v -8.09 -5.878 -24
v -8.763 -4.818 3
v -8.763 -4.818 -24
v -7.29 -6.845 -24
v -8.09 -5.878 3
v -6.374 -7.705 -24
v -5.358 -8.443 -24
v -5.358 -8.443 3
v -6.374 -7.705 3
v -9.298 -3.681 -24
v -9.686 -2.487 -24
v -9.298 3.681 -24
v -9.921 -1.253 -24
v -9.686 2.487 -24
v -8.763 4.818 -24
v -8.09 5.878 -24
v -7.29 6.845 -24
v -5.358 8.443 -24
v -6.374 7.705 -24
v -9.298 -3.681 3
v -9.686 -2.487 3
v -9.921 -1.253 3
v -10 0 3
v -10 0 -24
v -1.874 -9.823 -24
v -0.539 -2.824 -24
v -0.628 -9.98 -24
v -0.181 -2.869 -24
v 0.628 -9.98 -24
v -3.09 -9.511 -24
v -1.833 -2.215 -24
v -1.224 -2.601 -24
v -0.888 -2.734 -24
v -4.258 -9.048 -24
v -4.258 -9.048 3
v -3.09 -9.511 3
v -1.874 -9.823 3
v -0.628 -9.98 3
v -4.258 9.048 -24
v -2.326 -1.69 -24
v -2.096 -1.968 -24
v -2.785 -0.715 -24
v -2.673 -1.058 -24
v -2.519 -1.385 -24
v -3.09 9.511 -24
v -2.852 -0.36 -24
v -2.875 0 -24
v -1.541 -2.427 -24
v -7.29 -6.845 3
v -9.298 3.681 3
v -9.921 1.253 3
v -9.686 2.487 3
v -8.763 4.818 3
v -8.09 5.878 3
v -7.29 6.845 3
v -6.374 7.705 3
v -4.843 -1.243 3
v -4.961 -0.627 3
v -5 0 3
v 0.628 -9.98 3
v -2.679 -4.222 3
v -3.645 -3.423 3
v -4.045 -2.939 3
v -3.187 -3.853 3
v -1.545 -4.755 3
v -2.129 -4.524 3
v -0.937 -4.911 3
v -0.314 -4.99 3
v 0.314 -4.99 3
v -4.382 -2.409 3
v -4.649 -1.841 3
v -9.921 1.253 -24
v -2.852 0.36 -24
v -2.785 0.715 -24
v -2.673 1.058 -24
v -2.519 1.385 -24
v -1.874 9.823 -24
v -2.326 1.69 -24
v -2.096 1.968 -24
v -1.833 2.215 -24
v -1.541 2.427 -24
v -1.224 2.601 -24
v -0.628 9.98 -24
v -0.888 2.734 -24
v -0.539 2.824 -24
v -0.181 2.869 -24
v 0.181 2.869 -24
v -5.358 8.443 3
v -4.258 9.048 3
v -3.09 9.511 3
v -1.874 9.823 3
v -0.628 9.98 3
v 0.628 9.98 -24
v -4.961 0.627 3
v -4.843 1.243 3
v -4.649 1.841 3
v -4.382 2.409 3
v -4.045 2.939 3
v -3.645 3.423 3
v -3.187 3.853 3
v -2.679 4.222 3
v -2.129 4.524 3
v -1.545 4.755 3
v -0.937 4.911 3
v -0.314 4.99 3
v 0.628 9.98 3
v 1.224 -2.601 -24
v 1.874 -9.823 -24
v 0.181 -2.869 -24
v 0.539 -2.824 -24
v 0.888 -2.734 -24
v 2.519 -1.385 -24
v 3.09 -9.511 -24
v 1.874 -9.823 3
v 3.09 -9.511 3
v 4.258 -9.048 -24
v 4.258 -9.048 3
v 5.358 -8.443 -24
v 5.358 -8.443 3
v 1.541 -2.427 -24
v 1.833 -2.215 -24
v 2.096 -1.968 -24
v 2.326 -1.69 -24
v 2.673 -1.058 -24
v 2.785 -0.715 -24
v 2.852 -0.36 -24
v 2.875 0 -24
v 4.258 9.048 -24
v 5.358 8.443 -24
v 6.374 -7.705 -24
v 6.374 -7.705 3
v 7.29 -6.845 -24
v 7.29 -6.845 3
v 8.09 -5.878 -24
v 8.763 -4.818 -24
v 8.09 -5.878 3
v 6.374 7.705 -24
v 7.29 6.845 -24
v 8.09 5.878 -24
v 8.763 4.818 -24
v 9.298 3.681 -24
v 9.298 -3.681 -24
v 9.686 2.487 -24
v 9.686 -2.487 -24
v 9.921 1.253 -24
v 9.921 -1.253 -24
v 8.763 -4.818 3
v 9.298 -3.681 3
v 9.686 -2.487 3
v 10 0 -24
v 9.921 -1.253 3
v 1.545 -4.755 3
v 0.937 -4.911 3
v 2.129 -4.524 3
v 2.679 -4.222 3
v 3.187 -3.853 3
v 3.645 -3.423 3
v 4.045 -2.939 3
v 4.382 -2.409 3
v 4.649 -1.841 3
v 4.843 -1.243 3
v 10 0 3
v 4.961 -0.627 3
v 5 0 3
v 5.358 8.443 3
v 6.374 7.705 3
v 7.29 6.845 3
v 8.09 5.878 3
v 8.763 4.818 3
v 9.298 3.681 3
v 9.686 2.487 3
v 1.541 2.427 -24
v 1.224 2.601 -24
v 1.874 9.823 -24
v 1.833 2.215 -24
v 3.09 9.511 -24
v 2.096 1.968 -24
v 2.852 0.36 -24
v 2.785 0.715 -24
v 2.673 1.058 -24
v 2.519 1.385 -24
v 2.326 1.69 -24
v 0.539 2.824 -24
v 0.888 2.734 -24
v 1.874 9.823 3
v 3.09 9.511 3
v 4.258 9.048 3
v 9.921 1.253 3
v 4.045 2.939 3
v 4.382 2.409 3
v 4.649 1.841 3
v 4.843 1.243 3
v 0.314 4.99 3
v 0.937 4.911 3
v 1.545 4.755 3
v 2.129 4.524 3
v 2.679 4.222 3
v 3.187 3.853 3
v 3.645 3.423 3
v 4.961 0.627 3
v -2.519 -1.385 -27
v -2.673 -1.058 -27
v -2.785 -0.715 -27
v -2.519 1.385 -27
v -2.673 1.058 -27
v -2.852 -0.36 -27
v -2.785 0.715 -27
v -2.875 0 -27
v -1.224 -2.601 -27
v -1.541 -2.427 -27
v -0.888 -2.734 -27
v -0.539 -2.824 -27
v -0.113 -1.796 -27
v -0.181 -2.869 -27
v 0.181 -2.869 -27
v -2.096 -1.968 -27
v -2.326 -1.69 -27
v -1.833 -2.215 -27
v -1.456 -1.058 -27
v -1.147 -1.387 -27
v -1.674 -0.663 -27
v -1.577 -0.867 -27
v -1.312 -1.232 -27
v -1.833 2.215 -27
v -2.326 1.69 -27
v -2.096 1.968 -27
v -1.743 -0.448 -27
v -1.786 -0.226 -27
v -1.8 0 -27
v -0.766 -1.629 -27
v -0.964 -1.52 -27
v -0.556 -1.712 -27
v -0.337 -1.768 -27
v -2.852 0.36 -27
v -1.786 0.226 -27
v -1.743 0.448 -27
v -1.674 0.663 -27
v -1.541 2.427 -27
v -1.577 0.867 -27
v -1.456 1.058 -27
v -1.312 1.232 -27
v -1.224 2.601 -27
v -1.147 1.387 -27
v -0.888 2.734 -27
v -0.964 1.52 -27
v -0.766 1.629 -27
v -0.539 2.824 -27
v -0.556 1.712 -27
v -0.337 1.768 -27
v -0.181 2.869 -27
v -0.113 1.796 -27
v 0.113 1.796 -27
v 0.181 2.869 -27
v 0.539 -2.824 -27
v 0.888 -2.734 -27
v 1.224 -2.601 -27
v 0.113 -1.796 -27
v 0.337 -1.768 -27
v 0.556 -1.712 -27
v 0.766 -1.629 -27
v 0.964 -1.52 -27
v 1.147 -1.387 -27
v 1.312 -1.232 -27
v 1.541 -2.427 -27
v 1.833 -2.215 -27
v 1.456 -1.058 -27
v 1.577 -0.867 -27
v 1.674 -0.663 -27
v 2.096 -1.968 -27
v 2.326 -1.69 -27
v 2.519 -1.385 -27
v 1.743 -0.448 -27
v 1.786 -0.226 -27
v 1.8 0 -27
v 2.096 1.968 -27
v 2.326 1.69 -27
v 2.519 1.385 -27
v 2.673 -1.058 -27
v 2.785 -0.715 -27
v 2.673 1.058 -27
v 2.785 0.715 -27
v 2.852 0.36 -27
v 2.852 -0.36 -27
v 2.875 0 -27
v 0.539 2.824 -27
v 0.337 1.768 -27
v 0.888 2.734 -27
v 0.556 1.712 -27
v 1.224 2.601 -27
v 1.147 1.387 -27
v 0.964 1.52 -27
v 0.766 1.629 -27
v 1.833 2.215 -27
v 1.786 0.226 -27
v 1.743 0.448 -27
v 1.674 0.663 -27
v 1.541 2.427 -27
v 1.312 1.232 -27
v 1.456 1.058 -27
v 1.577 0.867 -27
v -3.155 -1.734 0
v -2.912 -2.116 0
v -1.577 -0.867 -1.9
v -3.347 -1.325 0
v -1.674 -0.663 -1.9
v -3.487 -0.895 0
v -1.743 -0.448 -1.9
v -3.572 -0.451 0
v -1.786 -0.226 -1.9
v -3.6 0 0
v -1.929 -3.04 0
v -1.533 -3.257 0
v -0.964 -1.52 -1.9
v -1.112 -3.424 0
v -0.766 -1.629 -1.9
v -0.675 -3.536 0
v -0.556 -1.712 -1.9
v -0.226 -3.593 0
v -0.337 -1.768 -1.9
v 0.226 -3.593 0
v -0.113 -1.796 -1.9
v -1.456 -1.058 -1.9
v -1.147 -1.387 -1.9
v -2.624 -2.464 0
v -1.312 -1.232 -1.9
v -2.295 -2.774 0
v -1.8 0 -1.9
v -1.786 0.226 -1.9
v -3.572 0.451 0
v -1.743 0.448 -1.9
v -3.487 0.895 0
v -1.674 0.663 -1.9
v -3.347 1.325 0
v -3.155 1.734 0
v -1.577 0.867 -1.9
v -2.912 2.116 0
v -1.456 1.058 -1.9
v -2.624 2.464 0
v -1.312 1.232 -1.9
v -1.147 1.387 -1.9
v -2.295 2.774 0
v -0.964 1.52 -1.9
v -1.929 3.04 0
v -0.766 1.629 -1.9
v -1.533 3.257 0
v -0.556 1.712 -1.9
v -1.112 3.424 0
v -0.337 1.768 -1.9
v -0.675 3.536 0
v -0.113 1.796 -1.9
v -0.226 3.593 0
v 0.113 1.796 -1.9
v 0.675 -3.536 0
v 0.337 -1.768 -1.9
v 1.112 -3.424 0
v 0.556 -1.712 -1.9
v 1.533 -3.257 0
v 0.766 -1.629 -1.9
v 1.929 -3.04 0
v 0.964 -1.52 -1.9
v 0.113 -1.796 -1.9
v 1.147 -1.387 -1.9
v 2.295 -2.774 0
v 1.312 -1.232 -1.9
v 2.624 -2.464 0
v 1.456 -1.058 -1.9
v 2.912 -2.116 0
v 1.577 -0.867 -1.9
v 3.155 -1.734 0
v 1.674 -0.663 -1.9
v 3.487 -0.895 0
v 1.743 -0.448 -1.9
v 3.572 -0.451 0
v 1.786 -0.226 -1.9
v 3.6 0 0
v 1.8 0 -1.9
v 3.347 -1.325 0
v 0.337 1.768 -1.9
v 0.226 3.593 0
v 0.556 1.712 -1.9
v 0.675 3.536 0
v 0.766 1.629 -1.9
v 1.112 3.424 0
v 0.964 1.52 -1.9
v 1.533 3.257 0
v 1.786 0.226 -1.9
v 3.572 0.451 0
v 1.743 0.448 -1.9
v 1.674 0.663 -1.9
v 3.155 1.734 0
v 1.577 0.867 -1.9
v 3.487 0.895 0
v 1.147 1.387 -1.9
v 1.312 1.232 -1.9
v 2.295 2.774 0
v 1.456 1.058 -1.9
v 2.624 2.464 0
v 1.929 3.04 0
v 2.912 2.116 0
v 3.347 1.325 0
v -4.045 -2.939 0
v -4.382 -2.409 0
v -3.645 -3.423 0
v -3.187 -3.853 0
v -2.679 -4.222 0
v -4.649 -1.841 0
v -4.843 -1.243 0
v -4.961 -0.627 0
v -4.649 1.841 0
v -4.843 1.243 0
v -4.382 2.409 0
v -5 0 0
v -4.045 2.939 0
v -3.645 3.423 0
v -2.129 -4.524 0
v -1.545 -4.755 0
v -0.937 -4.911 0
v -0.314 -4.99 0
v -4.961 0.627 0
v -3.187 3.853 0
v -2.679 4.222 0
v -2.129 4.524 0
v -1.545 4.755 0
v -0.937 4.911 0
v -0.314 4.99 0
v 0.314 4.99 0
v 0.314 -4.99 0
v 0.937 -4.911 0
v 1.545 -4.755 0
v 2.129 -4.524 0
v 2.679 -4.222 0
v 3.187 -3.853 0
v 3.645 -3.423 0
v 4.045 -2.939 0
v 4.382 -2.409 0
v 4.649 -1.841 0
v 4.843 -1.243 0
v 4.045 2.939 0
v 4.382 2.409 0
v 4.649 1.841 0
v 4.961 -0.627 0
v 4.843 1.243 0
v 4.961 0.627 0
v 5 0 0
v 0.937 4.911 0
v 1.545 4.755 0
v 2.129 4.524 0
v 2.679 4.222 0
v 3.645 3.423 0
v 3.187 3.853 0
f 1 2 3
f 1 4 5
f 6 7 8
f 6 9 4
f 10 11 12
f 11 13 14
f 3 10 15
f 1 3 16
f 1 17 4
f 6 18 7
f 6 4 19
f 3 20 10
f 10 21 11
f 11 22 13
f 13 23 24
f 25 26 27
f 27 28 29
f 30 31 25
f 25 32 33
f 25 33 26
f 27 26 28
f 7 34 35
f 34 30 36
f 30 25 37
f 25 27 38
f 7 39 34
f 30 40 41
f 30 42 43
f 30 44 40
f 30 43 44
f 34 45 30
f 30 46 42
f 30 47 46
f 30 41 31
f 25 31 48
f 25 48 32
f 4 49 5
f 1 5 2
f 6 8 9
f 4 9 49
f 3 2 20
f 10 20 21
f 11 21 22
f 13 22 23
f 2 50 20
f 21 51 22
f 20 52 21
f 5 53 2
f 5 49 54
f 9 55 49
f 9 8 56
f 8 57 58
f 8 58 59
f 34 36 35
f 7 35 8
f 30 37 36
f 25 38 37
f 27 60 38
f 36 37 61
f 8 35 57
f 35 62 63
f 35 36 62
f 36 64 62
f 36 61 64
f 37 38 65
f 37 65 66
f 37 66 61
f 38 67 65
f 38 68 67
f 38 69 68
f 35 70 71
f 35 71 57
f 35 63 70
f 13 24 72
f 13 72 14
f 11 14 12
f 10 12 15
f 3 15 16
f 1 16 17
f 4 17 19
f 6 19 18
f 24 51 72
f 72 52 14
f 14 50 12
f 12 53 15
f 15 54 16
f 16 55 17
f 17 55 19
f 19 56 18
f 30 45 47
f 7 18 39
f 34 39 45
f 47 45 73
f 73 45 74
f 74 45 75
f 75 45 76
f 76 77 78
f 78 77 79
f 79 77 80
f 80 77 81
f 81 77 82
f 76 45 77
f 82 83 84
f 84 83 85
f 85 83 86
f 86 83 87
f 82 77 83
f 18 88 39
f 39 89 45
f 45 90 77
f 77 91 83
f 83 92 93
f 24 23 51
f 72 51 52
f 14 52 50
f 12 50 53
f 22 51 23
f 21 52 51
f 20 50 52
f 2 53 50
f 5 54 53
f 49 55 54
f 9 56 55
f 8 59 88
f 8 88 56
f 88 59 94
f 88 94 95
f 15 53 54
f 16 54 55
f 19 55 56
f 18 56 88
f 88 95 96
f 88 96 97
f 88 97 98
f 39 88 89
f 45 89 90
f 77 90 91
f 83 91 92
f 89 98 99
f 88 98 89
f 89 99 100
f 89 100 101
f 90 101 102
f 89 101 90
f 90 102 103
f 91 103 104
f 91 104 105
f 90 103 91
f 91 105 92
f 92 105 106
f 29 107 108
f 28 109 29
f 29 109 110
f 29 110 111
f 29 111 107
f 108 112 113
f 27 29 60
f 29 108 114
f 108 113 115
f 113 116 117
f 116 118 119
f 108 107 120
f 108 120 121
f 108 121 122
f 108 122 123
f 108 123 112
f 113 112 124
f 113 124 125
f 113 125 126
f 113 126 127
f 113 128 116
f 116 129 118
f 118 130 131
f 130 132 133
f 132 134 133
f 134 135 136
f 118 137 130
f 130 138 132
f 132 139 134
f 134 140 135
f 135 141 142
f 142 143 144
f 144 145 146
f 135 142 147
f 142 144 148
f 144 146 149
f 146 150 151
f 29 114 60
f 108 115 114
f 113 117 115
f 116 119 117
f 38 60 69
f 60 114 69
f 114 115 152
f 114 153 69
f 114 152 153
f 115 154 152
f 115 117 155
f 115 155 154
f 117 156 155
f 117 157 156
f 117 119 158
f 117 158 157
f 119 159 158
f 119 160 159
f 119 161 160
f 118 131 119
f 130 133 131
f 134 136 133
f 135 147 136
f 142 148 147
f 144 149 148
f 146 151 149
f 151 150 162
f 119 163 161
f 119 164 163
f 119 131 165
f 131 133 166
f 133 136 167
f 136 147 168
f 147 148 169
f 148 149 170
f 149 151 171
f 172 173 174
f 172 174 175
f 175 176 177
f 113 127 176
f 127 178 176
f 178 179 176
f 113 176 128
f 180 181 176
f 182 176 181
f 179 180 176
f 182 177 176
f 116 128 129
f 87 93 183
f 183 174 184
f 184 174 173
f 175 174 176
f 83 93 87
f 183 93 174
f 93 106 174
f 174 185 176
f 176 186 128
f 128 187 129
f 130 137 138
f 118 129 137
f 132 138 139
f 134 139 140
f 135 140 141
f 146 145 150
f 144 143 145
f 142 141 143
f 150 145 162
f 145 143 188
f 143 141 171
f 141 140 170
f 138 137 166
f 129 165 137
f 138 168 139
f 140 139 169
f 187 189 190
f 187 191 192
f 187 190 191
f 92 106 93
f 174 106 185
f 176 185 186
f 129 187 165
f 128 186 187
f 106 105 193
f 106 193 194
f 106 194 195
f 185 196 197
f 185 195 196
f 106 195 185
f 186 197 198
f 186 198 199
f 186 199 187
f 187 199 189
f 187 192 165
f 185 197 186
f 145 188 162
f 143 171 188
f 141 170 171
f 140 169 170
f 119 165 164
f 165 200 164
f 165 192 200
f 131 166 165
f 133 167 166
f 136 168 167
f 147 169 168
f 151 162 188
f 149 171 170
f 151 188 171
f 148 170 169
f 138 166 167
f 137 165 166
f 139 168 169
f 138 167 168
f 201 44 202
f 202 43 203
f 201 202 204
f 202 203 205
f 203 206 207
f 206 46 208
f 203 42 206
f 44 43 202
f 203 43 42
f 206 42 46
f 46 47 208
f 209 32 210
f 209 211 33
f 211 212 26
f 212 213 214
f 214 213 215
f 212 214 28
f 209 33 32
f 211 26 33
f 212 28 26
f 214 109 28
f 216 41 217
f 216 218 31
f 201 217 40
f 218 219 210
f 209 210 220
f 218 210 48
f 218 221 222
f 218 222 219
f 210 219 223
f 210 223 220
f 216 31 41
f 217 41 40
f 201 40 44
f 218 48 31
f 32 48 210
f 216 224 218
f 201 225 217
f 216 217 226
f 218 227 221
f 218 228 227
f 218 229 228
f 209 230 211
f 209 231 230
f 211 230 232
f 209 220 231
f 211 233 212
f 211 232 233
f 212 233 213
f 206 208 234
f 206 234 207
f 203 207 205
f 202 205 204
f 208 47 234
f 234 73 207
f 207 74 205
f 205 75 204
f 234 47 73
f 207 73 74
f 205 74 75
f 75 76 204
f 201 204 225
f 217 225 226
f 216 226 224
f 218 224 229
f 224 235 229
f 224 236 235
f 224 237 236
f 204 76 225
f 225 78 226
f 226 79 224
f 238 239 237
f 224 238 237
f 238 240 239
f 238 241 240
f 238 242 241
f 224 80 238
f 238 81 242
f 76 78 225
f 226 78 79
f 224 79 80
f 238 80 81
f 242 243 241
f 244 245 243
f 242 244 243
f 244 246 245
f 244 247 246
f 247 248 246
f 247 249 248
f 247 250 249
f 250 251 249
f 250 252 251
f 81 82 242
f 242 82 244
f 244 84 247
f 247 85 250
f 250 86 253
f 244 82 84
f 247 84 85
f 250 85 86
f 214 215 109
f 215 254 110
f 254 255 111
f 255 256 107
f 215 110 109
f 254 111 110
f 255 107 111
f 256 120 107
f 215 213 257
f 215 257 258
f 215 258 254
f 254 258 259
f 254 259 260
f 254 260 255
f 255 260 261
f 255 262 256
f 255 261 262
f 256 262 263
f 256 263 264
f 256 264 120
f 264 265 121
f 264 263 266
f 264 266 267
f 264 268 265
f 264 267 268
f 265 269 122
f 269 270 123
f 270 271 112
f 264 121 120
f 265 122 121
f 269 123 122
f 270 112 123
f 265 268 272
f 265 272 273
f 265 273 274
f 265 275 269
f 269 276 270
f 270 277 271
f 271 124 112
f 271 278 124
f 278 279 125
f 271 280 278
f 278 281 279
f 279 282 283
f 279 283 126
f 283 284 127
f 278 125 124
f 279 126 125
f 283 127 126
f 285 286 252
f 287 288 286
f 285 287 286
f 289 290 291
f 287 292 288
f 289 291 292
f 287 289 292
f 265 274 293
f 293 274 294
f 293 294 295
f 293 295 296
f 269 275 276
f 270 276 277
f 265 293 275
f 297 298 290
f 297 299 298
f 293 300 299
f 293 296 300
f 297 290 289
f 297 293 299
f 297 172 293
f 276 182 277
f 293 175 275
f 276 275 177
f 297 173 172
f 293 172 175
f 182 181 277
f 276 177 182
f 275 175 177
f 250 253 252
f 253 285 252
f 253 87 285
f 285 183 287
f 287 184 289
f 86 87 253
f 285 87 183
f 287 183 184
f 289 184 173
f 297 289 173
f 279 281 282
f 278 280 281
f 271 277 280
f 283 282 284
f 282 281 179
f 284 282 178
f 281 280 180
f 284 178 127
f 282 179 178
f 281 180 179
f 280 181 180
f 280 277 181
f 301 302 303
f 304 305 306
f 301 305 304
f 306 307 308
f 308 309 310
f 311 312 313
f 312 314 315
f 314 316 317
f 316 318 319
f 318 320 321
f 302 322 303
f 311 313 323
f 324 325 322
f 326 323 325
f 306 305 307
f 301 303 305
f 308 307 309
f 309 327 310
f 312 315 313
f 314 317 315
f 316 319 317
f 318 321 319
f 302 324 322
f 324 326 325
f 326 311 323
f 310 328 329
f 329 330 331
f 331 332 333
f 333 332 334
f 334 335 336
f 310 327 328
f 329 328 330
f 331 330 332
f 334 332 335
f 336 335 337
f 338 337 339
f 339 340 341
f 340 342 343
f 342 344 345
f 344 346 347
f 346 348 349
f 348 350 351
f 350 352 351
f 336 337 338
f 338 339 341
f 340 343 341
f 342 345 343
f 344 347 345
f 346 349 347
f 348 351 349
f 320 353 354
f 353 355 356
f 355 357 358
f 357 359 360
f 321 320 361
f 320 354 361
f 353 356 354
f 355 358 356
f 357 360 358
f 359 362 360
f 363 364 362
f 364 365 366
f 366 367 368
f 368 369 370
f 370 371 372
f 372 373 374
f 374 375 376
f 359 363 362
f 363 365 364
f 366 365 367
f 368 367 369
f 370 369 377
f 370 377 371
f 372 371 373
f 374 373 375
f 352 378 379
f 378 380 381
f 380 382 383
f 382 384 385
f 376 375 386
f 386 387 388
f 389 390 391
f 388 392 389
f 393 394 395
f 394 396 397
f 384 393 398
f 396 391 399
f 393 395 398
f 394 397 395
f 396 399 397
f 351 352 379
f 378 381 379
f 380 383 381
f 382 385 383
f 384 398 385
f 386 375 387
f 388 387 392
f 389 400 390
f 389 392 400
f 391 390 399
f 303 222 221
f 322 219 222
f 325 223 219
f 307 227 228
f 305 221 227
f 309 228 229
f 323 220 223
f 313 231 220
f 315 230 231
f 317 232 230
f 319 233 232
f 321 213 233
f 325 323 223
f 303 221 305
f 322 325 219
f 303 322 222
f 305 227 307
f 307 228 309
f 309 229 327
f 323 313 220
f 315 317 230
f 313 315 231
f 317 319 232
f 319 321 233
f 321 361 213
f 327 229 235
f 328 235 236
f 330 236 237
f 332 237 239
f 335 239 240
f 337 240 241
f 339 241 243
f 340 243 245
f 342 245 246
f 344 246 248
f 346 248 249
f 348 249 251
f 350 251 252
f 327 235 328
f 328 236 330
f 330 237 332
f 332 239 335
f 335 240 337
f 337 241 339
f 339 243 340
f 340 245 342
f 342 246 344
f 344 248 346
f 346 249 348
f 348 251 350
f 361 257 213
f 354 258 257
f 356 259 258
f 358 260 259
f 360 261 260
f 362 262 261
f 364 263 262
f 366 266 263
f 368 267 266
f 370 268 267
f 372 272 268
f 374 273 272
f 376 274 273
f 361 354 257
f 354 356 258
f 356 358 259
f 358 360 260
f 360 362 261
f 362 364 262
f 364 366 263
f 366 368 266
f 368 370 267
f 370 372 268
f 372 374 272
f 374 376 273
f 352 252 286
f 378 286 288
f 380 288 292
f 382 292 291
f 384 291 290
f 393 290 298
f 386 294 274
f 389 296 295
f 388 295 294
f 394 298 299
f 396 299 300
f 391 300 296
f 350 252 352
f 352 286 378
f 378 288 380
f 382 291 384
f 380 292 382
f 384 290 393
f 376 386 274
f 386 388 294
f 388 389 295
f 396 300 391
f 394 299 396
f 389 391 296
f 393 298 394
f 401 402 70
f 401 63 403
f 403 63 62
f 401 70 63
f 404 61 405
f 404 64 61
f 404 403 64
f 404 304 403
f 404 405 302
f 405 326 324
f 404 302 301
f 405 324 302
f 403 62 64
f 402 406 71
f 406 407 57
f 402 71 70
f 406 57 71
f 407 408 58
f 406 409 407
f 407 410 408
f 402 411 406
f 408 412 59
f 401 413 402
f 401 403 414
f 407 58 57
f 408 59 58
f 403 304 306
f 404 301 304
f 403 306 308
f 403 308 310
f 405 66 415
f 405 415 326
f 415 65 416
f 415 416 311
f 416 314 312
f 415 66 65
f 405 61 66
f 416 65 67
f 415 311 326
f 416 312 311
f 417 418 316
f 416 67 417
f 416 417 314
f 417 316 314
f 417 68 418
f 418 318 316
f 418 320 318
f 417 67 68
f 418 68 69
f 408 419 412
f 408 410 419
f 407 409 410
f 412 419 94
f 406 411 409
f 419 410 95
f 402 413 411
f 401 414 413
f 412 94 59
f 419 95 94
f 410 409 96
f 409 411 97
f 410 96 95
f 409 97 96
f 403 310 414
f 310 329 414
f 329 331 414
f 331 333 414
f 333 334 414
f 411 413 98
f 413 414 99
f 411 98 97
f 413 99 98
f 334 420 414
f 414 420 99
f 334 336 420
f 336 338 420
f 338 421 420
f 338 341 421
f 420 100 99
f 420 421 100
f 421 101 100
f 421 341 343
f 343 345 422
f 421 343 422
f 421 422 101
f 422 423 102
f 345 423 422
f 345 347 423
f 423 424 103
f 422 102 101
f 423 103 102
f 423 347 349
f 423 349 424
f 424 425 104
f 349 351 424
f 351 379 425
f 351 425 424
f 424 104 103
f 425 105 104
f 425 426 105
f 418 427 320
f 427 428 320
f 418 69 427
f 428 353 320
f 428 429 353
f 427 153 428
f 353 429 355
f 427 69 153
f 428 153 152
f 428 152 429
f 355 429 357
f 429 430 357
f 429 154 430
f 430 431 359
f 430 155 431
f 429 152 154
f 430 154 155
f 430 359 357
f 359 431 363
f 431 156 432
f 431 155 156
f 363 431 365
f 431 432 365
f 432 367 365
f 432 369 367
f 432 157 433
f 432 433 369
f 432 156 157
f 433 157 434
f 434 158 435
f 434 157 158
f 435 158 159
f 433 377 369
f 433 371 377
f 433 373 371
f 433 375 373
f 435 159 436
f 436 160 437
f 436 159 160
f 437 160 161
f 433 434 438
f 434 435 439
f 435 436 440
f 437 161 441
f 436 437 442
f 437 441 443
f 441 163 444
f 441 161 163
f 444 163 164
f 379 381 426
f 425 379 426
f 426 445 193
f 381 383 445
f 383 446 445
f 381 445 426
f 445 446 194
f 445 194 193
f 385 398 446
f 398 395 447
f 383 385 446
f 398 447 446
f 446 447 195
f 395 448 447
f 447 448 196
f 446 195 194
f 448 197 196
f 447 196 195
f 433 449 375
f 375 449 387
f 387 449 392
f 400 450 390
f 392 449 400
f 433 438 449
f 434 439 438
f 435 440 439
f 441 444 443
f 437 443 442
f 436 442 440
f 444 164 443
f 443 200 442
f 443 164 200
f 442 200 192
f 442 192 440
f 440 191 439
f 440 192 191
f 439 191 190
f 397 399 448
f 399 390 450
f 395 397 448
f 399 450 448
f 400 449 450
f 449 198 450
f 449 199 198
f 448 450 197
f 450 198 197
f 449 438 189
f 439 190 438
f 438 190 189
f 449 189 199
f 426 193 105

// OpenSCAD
$fn = 50;

difference() {
	union() {
		translate(v = [0, 0, -24.0]) {
			cylinder(h = 27, r = 10.0);
		}
		#translate(v = [0, 0, -27.0]) {
			cylinder(h = 27, r = 2.875);
		}
	}
	union() {
		translate(v = [0, 0, 0]) {
			rotate(a = [0, 0, 0]) {
				difference() {
					union() {
						translate(v = [0, 0, -27.0]) {
							cylinder(h = 27, r = 1.5);
						}
						translate(v = [0, 0, -1.9]) {
							cylinder(h = 1.9, r1 = 1.8, r2 = 3.6);
						}
						translate(v = [0, 0, -27.0]) {
							cylinder(h = 27, r = 1.8);
						}
						translate(v = [0, 0, -27.0]) {
							cylinder(h = 27, r = 1.5);
						}
					}
					union();
				}
			}
		}
		#cylinder(h = 3, r = 5.0);
	}
}
